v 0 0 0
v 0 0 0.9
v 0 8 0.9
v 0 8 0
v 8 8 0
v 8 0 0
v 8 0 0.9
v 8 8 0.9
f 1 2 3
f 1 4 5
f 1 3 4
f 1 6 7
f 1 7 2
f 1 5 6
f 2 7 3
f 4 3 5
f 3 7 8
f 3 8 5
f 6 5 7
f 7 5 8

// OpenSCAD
/* Warning, this is a very basic generator with a lot of approximation 
input data : [VQFN, KDC, 8x8x0.9mm, 56, , D, C04-25526D]
generated by com.zoubworld.electronics.cad.model3d.Basic
Date : Sun Feb 15 10:50:49 CET 2026
*/

//body
color("black")
translate([0,0,0])
cube([8.0,8.0,0.9], center=false);
